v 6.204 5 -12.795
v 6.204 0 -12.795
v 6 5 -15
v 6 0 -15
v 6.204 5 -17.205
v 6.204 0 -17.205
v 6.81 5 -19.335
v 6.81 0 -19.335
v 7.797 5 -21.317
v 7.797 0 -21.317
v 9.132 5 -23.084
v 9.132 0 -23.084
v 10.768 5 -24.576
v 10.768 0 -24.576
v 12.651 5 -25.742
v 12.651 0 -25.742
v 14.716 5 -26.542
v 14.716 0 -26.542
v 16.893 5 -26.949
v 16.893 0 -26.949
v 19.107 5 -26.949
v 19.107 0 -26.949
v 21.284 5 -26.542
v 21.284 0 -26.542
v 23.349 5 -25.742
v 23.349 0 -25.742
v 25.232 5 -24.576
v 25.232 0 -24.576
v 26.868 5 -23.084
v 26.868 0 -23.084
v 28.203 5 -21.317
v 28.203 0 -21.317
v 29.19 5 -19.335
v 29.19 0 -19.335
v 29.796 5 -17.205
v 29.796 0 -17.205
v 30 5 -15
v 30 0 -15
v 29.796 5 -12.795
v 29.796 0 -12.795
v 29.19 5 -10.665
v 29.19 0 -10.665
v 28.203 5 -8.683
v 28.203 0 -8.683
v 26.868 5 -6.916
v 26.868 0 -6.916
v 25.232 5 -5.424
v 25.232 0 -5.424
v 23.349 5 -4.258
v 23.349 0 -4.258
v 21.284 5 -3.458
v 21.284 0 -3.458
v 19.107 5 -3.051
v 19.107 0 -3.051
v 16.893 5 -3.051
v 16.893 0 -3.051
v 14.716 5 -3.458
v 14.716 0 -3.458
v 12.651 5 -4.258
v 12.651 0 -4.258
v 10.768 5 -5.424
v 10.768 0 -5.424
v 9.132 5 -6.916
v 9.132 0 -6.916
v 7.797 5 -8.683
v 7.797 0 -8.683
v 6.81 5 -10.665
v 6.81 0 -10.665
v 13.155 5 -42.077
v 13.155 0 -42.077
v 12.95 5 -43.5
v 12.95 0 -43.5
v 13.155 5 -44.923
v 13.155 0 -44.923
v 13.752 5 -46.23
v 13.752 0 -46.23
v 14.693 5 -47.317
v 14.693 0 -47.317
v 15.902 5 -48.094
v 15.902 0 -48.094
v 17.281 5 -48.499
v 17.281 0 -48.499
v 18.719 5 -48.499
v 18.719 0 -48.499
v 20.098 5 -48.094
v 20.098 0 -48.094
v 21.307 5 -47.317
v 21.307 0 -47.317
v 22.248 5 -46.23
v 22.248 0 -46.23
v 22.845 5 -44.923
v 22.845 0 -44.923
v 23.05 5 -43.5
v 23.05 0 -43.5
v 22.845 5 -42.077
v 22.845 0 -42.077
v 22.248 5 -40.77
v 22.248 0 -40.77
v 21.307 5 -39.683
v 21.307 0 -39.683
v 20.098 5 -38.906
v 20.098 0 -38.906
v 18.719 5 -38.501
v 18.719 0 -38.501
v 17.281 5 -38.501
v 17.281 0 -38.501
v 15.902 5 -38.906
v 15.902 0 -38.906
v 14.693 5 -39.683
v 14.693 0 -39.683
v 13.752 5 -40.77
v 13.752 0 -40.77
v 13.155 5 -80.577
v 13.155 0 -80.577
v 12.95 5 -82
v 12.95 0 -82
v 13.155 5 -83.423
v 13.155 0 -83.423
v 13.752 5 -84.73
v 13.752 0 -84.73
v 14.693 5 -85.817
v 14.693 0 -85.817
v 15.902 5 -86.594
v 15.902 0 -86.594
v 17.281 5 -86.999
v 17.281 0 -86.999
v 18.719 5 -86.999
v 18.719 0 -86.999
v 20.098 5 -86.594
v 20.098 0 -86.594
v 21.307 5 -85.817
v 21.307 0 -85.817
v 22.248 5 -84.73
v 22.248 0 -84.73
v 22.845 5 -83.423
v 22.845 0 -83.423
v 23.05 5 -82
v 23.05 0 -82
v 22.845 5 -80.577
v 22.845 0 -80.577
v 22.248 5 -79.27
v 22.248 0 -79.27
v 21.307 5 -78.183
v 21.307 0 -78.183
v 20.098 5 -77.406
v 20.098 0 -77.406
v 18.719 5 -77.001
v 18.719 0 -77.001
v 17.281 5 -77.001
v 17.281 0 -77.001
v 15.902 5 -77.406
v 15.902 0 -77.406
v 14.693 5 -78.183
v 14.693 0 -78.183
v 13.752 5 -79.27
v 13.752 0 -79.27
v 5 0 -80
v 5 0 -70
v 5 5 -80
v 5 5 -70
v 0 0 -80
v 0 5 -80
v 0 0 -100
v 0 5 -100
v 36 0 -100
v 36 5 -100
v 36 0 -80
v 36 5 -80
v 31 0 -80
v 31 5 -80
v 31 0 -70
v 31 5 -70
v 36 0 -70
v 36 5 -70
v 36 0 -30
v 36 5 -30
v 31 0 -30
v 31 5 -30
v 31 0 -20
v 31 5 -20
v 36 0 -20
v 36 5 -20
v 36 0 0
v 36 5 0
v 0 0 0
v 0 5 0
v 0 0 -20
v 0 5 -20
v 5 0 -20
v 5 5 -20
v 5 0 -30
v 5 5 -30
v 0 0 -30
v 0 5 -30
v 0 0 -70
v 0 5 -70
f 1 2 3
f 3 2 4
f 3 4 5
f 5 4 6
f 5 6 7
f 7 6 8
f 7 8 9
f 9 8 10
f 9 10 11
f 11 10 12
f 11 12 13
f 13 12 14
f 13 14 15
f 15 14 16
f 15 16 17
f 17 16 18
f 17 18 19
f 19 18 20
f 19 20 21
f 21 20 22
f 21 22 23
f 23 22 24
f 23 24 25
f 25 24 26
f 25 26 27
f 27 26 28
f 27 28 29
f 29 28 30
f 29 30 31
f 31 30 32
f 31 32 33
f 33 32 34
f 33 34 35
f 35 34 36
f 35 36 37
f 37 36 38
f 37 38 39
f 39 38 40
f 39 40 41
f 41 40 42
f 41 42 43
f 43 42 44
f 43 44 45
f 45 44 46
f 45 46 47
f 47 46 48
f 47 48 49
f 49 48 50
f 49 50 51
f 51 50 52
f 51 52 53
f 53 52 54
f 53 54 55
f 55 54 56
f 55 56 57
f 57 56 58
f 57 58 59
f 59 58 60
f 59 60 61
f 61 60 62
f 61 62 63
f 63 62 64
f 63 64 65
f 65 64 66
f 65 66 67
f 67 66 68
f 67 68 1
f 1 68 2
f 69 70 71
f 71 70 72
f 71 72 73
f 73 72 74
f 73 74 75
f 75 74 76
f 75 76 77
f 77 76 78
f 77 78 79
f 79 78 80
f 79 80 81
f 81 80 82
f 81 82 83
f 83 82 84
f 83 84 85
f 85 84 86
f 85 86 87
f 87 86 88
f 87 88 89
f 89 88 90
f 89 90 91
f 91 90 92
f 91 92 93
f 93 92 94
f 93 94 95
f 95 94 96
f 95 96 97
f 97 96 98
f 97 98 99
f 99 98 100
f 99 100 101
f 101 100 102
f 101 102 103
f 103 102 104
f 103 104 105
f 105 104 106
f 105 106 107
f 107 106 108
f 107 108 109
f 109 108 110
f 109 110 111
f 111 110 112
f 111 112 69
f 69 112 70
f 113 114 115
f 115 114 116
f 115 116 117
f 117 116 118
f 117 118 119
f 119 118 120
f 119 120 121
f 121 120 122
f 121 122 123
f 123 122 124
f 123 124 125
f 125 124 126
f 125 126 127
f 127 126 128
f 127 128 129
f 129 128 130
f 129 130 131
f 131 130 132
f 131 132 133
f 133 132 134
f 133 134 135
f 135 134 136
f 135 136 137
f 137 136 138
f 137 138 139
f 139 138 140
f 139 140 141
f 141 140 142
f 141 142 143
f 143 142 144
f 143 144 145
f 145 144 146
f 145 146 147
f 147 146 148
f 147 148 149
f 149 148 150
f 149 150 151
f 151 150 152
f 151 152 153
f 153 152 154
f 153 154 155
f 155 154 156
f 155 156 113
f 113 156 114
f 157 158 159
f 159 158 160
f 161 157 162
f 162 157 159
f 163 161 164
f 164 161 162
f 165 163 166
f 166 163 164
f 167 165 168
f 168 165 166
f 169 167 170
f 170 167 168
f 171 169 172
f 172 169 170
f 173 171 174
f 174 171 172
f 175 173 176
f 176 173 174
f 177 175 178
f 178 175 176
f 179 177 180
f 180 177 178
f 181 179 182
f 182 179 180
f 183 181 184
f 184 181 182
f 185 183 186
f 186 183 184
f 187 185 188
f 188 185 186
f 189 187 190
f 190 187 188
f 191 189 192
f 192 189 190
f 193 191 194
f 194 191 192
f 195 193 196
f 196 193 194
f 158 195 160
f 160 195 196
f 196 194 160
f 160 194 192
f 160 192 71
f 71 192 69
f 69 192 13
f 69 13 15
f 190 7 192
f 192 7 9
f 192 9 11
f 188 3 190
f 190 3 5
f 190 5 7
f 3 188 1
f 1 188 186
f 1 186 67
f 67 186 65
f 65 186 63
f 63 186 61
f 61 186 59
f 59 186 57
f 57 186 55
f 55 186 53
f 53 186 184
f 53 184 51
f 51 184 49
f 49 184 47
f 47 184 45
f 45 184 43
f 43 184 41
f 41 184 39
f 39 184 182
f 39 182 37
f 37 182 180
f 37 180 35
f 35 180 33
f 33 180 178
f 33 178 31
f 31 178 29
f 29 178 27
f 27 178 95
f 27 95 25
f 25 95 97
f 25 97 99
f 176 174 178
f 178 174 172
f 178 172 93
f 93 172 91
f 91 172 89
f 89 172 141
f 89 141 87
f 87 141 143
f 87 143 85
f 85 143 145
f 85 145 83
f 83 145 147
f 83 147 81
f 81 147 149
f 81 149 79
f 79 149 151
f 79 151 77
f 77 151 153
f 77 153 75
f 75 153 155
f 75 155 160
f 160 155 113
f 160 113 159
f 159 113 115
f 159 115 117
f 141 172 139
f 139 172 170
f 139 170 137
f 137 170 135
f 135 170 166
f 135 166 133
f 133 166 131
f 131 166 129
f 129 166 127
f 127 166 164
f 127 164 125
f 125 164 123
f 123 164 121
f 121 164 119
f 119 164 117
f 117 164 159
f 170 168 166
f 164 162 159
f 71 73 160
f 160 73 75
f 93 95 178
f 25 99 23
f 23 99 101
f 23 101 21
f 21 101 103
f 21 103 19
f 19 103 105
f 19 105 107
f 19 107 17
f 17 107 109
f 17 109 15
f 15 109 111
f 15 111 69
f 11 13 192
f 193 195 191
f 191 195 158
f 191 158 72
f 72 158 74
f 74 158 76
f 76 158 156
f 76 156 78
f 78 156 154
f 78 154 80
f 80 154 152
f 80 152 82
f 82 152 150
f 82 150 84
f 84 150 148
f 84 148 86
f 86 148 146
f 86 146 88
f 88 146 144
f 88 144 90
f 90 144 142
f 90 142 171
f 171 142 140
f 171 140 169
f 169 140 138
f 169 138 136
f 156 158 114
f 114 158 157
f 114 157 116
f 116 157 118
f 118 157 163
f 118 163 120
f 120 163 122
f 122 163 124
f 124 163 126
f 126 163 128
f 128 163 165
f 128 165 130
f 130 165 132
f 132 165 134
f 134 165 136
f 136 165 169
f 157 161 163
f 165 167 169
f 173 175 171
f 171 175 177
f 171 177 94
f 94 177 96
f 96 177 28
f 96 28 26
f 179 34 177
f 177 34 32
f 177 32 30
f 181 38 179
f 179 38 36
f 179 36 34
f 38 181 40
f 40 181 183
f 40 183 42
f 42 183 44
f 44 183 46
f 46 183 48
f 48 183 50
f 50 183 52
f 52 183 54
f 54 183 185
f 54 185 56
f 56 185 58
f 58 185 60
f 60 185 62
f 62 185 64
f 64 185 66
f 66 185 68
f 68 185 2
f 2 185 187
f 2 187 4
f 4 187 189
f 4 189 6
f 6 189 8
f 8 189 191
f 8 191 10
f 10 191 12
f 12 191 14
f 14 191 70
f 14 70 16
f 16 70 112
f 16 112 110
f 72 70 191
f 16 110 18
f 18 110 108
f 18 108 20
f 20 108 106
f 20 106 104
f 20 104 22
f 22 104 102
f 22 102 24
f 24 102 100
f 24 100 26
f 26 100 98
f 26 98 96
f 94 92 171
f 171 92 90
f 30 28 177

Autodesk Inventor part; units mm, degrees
ref_plane "YZ Plane" through (0, 0, 0) normal (1, 0, 0) x (0, 1, 0)
ref_plane "XZ Plane" through (0, 0, 0) normal (0, 1, 0) x (-1, 0, 0)
ref_plane "XY Plane" through (0, 0, 0) normal (0, 0, 1) x (1, 0, 0)
sketch "Sketch2" plane through (0, 0, 0) normal (0, 1, 0) x (-1, 0, 0)
  line L0 (0, 0) -> (-36, 0)
  line L1 (-36, 0) -> (-36, -100)
  line L2 (-36, -100) -> (0, -100)
  line L3 (0, -100) -> (0, 0)
  line L4 (-36, 0) -> (-36, -20)
  line L5 (-36, -20) -> (0, -20)
  line L6 (-36, -100) -> (-36, -80)
  line L7 (-36, -80) -> (-36, -61.7109)
  line L8 (0, -61.7109) -> (0, -80)
  line L9 (-36, -80) -> (-36, -70)
  line L10 (-36, -70) -> (0, -70)
  line L11 (0, -80) -> (-36, -80)
  line L12 (0, -70) -> (0, -80)
  line L13 (0, -70) -> (-5, -70)
  line L14 (-5, -70) -> (-5, -80)
  line L15 (-36, -20) -> (-36, -30)
  line L16 (-36, -30) -> (0, -30)
  line L17 (0, -20) -> (-5, -20)
  line L18 (-5, -20) -> (-5, -30)
  line L19 (-36, -80) -> (-31, -80)
  line L20 (-31, -80) -> (-31, -70)
  line L21 (-31, -30) -> (-31, -20)
  line L22 (-18, 0) -> (-18, -15)
  circle A0 centre (-18, -15) radius 12
  line L23 (-18, -15) -> (-18, -45.5)
  line L24 (-18, -45.5) -> (-18, -86)
  line L25 (-18, -15) -> (-18, -43.5)
  circle A1 centre (-18, -43.5) radius 5.05
  line L26 (-18, -43.5) -> (-18, -82)
  circle A2 centre (-18, -82) radius 5.05
  dimension "d0" = 36
  dimension "d1" = 100
  dimension "d2" = 20
  dimension "d3" = 20
  dimension "d4" = 10
  dimension "d5" = 5
  dimension "d6" = 10
  dimension "d7" = 5
  dimension "d8" = 5
  dimension "d9" = 15
  dimension "d10" = 24
  dimension "d17" = 28.5
  dimension "d18" = 10.1
  dimension "d19" = 38.5
  dimension "d20" = 10.1
extrude "Extrusion1" add sketch "Sketch2" along normal blind 5 contours L3 L5 A0 L22 L0 | L22 A0 L5 L1 L0 | L3 L10 L24 A1 L23 L16 | L18 L16 L23 A0 L5 | A0 L23 L16 L21 L5 | L16 L23 A1 L24 L10 L1 | L3 L2 L1 L11 A2 | L14 L11 A2 L24 L10 | L24 A2 L11 L20 L10
equation "\"BendRadius\" = Thickness"
equation "\"BendReliefWidth\" = Thickness"
equation "\"BendReliefDepth\" = 0.5 * Thickness"
equation "\"CornerReliefSize\" = 4 * Thickness"
equation "\"MinimumRemnant\" = 2 * Thickness"
equation "\"TransitionRadius\" = BendRadius"
equation "\"JacobiRadiusSize\" = BendRadius"
equation "\"GapSize\" = Thickness"
equation "\"Thickness\" = 0.5"
